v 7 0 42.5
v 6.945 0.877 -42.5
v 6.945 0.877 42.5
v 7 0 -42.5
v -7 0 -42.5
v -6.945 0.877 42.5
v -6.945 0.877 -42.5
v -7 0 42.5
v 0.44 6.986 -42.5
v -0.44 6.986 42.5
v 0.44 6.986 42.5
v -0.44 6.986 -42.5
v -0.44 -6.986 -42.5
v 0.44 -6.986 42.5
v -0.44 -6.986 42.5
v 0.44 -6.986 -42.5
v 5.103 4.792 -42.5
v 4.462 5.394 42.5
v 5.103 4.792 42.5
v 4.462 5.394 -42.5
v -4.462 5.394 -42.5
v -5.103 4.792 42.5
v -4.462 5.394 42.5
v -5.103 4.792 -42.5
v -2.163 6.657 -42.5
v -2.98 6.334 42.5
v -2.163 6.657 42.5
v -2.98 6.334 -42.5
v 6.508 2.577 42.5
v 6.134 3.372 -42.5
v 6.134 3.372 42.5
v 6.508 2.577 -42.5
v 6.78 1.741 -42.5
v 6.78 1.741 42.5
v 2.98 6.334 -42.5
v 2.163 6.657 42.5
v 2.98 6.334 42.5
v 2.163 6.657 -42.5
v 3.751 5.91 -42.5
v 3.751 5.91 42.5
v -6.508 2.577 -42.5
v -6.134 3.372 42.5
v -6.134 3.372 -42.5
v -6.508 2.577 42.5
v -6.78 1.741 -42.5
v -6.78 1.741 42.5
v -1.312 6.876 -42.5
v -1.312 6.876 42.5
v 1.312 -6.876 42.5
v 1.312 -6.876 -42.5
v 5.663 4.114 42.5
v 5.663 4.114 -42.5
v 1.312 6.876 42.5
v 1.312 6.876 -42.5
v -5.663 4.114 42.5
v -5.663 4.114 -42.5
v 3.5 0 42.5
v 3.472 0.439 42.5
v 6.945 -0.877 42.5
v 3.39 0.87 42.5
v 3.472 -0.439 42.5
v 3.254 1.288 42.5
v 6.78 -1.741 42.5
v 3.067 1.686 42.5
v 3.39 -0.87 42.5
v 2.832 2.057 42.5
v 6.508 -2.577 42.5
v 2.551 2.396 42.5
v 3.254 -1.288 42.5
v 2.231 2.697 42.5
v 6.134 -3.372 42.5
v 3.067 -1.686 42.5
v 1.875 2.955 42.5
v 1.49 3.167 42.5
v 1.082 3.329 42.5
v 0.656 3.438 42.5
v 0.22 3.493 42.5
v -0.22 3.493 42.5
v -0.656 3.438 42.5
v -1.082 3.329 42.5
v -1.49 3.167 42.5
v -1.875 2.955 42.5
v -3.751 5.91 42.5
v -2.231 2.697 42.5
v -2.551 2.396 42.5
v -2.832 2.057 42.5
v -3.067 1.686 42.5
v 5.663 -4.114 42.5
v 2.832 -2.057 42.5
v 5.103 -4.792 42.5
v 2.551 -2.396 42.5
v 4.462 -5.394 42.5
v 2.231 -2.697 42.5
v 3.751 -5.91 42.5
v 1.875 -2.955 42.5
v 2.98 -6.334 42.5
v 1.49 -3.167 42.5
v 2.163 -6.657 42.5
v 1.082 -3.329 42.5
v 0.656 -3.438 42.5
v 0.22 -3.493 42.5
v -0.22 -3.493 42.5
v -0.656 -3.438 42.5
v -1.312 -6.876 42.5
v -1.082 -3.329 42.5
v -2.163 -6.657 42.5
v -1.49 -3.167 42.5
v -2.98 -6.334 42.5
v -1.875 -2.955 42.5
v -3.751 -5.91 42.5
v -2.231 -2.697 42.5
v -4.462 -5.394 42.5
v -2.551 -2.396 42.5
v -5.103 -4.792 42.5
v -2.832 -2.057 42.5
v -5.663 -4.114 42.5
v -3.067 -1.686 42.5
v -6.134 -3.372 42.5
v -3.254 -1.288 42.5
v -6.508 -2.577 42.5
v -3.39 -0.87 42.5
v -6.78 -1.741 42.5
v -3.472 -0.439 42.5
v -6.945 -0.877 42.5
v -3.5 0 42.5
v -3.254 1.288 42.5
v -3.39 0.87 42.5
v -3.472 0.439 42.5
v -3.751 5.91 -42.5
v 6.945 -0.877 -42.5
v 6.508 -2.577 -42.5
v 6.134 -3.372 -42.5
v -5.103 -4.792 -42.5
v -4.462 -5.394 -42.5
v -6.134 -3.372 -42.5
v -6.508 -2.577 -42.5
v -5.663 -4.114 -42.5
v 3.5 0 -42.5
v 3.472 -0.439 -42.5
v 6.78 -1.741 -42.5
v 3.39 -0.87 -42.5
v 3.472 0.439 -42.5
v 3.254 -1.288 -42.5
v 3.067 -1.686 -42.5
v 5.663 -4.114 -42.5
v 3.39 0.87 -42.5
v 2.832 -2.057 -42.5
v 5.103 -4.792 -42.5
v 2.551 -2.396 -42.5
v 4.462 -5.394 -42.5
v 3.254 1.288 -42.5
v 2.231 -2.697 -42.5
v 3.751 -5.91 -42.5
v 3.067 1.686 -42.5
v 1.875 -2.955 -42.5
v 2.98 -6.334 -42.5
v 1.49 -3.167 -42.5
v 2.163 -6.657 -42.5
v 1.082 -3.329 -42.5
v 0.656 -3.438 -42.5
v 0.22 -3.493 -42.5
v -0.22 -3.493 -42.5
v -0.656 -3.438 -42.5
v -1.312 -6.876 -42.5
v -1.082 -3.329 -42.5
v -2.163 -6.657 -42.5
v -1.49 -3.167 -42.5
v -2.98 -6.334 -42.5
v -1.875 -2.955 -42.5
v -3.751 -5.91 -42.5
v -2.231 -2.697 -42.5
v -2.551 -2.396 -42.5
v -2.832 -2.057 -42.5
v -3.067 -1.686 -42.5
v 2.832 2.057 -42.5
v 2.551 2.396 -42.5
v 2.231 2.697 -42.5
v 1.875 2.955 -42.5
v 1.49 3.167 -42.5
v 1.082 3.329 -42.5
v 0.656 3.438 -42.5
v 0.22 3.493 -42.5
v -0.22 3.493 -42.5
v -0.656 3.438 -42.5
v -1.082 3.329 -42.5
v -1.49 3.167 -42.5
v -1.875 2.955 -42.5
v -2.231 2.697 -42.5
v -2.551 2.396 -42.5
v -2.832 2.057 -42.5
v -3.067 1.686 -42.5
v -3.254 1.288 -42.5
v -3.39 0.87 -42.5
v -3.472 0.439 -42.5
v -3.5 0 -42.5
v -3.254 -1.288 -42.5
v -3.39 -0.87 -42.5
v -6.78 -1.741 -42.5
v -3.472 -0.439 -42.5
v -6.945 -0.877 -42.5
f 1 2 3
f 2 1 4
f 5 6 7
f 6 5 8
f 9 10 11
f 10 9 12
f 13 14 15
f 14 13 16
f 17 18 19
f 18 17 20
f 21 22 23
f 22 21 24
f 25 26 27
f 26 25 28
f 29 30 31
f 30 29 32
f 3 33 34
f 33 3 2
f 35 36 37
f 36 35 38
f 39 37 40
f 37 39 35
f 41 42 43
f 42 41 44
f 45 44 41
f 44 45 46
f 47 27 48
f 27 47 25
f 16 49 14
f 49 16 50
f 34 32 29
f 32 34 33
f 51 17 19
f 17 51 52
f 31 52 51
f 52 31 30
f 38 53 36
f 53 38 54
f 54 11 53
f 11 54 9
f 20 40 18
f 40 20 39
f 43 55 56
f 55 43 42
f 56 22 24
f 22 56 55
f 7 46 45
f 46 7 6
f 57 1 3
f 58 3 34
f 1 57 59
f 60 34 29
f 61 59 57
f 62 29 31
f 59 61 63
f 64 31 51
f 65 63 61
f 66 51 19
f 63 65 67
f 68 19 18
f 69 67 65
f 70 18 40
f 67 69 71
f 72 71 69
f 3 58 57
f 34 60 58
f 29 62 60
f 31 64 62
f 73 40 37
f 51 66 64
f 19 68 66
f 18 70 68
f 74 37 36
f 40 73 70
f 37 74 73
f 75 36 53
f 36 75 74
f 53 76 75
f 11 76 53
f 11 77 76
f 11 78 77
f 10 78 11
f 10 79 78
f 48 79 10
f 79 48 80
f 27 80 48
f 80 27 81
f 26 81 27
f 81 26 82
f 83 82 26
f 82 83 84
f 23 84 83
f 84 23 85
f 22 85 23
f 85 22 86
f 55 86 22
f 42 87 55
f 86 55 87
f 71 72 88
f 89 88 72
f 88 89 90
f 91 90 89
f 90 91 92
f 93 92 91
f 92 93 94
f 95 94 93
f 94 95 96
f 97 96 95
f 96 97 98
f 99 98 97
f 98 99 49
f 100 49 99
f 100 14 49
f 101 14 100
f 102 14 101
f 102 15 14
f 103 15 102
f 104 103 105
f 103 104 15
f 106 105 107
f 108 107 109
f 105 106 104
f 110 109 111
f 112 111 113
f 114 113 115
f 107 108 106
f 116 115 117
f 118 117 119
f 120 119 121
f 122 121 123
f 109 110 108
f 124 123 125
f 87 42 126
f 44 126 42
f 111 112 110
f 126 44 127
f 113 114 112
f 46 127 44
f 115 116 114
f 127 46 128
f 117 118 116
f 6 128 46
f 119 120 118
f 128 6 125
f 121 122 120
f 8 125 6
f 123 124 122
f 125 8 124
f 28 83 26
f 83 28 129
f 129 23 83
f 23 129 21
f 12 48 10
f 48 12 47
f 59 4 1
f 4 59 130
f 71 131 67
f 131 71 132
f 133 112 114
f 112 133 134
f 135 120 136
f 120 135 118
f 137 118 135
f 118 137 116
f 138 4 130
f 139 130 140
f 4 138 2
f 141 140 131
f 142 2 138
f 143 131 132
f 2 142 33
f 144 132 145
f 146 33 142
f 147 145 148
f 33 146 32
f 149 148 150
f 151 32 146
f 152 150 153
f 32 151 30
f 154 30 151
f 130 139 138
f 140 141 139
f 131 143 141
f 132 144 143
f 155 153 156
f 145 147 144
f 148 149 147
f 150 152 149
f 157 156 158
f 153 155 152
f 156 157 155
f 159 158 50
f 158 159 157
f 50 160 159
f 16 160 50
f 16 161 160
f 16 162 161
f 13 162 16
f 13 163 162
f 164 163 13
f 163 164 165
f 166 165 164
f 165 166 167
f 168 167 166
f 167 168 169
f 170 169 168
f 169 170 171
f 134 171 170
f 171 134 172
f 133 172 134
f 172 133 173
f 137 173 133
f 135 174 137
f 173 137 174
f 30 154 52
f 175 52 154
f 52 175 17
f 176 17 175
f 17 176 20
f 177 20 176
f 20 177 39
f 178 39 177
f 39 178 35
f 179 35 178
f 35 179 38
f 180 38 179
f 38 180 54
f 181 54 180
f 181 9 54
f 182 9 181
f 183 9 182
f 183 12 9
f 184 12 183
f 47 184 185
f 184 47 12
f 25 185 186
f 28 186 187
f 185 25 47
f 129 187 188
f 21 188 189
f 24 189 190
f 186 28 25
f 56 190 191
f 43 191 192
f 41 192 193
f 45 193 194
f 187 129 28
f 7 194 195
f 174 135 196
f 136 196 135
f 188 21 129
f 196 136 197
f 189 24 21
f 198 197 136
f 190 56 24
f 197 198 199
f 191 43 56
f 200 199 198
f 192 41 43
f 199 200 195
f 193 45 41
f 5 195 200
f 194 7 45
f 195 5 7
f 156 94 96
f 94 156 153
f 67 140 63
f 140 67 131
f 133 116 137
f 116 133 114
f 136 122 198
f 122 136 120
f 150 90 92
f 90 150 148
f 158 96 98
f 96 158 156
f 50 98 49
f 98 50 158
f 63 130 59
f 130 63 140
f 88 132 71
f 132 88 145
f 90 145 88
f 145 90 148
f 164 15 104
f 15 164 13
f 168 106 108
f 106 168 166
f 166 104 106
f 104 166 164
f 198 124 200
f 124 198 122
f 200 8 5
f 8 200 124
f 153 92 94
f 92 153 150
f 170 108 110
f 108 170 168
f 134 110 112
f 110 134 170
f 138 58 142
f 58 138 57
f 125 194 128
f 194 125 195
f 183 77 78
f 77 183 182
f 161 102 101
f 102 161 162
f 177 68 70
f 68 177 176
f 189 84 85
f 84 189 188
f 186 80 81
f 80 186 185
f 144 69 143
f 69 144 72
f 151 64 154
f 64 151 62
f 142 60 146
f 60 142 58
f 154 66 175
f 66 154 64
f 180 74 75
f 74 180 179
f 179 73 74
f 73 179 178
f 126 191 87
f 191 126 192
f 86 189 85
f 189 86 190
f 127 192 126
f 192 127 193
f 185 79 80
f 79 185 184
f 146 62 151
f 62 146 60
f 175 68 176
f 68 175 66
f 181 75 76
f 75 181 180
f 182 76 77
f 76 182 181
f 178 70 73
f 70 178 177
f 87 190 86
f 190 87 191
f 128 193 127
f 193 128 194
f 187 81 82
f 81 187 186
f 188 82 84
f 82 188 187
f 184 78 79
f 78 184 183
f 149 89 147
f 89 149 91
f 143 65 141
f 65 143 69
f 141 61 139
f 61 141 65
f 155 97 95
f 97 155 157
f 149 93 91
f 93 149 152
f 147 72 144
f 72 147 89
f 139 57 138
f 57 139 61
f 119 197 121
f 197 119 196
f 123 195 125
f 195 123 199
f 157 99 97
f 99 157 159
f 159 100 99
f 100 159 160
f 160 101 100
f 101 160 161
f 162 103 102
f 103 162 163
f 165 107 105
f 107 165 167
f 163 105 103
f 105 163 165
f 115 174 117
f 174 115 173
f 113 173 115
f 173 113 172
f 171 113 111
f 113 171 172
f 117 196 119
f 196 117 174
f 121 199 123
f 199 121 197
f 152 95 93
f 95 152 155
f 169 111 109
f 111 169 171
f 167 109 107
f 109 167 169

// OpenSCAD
$fn = 50;


difference() {
	union() {
		translate(v = [0, 0, -42.5000000000]) {
			cylinder(h = 85, r = 7.0000000000);
		}
	}
	union() {
		translate(v = [0, 0, -100.0000000000]) {
			cylinder(h = 200, r = 3.5000000000);
		}
	}
}
